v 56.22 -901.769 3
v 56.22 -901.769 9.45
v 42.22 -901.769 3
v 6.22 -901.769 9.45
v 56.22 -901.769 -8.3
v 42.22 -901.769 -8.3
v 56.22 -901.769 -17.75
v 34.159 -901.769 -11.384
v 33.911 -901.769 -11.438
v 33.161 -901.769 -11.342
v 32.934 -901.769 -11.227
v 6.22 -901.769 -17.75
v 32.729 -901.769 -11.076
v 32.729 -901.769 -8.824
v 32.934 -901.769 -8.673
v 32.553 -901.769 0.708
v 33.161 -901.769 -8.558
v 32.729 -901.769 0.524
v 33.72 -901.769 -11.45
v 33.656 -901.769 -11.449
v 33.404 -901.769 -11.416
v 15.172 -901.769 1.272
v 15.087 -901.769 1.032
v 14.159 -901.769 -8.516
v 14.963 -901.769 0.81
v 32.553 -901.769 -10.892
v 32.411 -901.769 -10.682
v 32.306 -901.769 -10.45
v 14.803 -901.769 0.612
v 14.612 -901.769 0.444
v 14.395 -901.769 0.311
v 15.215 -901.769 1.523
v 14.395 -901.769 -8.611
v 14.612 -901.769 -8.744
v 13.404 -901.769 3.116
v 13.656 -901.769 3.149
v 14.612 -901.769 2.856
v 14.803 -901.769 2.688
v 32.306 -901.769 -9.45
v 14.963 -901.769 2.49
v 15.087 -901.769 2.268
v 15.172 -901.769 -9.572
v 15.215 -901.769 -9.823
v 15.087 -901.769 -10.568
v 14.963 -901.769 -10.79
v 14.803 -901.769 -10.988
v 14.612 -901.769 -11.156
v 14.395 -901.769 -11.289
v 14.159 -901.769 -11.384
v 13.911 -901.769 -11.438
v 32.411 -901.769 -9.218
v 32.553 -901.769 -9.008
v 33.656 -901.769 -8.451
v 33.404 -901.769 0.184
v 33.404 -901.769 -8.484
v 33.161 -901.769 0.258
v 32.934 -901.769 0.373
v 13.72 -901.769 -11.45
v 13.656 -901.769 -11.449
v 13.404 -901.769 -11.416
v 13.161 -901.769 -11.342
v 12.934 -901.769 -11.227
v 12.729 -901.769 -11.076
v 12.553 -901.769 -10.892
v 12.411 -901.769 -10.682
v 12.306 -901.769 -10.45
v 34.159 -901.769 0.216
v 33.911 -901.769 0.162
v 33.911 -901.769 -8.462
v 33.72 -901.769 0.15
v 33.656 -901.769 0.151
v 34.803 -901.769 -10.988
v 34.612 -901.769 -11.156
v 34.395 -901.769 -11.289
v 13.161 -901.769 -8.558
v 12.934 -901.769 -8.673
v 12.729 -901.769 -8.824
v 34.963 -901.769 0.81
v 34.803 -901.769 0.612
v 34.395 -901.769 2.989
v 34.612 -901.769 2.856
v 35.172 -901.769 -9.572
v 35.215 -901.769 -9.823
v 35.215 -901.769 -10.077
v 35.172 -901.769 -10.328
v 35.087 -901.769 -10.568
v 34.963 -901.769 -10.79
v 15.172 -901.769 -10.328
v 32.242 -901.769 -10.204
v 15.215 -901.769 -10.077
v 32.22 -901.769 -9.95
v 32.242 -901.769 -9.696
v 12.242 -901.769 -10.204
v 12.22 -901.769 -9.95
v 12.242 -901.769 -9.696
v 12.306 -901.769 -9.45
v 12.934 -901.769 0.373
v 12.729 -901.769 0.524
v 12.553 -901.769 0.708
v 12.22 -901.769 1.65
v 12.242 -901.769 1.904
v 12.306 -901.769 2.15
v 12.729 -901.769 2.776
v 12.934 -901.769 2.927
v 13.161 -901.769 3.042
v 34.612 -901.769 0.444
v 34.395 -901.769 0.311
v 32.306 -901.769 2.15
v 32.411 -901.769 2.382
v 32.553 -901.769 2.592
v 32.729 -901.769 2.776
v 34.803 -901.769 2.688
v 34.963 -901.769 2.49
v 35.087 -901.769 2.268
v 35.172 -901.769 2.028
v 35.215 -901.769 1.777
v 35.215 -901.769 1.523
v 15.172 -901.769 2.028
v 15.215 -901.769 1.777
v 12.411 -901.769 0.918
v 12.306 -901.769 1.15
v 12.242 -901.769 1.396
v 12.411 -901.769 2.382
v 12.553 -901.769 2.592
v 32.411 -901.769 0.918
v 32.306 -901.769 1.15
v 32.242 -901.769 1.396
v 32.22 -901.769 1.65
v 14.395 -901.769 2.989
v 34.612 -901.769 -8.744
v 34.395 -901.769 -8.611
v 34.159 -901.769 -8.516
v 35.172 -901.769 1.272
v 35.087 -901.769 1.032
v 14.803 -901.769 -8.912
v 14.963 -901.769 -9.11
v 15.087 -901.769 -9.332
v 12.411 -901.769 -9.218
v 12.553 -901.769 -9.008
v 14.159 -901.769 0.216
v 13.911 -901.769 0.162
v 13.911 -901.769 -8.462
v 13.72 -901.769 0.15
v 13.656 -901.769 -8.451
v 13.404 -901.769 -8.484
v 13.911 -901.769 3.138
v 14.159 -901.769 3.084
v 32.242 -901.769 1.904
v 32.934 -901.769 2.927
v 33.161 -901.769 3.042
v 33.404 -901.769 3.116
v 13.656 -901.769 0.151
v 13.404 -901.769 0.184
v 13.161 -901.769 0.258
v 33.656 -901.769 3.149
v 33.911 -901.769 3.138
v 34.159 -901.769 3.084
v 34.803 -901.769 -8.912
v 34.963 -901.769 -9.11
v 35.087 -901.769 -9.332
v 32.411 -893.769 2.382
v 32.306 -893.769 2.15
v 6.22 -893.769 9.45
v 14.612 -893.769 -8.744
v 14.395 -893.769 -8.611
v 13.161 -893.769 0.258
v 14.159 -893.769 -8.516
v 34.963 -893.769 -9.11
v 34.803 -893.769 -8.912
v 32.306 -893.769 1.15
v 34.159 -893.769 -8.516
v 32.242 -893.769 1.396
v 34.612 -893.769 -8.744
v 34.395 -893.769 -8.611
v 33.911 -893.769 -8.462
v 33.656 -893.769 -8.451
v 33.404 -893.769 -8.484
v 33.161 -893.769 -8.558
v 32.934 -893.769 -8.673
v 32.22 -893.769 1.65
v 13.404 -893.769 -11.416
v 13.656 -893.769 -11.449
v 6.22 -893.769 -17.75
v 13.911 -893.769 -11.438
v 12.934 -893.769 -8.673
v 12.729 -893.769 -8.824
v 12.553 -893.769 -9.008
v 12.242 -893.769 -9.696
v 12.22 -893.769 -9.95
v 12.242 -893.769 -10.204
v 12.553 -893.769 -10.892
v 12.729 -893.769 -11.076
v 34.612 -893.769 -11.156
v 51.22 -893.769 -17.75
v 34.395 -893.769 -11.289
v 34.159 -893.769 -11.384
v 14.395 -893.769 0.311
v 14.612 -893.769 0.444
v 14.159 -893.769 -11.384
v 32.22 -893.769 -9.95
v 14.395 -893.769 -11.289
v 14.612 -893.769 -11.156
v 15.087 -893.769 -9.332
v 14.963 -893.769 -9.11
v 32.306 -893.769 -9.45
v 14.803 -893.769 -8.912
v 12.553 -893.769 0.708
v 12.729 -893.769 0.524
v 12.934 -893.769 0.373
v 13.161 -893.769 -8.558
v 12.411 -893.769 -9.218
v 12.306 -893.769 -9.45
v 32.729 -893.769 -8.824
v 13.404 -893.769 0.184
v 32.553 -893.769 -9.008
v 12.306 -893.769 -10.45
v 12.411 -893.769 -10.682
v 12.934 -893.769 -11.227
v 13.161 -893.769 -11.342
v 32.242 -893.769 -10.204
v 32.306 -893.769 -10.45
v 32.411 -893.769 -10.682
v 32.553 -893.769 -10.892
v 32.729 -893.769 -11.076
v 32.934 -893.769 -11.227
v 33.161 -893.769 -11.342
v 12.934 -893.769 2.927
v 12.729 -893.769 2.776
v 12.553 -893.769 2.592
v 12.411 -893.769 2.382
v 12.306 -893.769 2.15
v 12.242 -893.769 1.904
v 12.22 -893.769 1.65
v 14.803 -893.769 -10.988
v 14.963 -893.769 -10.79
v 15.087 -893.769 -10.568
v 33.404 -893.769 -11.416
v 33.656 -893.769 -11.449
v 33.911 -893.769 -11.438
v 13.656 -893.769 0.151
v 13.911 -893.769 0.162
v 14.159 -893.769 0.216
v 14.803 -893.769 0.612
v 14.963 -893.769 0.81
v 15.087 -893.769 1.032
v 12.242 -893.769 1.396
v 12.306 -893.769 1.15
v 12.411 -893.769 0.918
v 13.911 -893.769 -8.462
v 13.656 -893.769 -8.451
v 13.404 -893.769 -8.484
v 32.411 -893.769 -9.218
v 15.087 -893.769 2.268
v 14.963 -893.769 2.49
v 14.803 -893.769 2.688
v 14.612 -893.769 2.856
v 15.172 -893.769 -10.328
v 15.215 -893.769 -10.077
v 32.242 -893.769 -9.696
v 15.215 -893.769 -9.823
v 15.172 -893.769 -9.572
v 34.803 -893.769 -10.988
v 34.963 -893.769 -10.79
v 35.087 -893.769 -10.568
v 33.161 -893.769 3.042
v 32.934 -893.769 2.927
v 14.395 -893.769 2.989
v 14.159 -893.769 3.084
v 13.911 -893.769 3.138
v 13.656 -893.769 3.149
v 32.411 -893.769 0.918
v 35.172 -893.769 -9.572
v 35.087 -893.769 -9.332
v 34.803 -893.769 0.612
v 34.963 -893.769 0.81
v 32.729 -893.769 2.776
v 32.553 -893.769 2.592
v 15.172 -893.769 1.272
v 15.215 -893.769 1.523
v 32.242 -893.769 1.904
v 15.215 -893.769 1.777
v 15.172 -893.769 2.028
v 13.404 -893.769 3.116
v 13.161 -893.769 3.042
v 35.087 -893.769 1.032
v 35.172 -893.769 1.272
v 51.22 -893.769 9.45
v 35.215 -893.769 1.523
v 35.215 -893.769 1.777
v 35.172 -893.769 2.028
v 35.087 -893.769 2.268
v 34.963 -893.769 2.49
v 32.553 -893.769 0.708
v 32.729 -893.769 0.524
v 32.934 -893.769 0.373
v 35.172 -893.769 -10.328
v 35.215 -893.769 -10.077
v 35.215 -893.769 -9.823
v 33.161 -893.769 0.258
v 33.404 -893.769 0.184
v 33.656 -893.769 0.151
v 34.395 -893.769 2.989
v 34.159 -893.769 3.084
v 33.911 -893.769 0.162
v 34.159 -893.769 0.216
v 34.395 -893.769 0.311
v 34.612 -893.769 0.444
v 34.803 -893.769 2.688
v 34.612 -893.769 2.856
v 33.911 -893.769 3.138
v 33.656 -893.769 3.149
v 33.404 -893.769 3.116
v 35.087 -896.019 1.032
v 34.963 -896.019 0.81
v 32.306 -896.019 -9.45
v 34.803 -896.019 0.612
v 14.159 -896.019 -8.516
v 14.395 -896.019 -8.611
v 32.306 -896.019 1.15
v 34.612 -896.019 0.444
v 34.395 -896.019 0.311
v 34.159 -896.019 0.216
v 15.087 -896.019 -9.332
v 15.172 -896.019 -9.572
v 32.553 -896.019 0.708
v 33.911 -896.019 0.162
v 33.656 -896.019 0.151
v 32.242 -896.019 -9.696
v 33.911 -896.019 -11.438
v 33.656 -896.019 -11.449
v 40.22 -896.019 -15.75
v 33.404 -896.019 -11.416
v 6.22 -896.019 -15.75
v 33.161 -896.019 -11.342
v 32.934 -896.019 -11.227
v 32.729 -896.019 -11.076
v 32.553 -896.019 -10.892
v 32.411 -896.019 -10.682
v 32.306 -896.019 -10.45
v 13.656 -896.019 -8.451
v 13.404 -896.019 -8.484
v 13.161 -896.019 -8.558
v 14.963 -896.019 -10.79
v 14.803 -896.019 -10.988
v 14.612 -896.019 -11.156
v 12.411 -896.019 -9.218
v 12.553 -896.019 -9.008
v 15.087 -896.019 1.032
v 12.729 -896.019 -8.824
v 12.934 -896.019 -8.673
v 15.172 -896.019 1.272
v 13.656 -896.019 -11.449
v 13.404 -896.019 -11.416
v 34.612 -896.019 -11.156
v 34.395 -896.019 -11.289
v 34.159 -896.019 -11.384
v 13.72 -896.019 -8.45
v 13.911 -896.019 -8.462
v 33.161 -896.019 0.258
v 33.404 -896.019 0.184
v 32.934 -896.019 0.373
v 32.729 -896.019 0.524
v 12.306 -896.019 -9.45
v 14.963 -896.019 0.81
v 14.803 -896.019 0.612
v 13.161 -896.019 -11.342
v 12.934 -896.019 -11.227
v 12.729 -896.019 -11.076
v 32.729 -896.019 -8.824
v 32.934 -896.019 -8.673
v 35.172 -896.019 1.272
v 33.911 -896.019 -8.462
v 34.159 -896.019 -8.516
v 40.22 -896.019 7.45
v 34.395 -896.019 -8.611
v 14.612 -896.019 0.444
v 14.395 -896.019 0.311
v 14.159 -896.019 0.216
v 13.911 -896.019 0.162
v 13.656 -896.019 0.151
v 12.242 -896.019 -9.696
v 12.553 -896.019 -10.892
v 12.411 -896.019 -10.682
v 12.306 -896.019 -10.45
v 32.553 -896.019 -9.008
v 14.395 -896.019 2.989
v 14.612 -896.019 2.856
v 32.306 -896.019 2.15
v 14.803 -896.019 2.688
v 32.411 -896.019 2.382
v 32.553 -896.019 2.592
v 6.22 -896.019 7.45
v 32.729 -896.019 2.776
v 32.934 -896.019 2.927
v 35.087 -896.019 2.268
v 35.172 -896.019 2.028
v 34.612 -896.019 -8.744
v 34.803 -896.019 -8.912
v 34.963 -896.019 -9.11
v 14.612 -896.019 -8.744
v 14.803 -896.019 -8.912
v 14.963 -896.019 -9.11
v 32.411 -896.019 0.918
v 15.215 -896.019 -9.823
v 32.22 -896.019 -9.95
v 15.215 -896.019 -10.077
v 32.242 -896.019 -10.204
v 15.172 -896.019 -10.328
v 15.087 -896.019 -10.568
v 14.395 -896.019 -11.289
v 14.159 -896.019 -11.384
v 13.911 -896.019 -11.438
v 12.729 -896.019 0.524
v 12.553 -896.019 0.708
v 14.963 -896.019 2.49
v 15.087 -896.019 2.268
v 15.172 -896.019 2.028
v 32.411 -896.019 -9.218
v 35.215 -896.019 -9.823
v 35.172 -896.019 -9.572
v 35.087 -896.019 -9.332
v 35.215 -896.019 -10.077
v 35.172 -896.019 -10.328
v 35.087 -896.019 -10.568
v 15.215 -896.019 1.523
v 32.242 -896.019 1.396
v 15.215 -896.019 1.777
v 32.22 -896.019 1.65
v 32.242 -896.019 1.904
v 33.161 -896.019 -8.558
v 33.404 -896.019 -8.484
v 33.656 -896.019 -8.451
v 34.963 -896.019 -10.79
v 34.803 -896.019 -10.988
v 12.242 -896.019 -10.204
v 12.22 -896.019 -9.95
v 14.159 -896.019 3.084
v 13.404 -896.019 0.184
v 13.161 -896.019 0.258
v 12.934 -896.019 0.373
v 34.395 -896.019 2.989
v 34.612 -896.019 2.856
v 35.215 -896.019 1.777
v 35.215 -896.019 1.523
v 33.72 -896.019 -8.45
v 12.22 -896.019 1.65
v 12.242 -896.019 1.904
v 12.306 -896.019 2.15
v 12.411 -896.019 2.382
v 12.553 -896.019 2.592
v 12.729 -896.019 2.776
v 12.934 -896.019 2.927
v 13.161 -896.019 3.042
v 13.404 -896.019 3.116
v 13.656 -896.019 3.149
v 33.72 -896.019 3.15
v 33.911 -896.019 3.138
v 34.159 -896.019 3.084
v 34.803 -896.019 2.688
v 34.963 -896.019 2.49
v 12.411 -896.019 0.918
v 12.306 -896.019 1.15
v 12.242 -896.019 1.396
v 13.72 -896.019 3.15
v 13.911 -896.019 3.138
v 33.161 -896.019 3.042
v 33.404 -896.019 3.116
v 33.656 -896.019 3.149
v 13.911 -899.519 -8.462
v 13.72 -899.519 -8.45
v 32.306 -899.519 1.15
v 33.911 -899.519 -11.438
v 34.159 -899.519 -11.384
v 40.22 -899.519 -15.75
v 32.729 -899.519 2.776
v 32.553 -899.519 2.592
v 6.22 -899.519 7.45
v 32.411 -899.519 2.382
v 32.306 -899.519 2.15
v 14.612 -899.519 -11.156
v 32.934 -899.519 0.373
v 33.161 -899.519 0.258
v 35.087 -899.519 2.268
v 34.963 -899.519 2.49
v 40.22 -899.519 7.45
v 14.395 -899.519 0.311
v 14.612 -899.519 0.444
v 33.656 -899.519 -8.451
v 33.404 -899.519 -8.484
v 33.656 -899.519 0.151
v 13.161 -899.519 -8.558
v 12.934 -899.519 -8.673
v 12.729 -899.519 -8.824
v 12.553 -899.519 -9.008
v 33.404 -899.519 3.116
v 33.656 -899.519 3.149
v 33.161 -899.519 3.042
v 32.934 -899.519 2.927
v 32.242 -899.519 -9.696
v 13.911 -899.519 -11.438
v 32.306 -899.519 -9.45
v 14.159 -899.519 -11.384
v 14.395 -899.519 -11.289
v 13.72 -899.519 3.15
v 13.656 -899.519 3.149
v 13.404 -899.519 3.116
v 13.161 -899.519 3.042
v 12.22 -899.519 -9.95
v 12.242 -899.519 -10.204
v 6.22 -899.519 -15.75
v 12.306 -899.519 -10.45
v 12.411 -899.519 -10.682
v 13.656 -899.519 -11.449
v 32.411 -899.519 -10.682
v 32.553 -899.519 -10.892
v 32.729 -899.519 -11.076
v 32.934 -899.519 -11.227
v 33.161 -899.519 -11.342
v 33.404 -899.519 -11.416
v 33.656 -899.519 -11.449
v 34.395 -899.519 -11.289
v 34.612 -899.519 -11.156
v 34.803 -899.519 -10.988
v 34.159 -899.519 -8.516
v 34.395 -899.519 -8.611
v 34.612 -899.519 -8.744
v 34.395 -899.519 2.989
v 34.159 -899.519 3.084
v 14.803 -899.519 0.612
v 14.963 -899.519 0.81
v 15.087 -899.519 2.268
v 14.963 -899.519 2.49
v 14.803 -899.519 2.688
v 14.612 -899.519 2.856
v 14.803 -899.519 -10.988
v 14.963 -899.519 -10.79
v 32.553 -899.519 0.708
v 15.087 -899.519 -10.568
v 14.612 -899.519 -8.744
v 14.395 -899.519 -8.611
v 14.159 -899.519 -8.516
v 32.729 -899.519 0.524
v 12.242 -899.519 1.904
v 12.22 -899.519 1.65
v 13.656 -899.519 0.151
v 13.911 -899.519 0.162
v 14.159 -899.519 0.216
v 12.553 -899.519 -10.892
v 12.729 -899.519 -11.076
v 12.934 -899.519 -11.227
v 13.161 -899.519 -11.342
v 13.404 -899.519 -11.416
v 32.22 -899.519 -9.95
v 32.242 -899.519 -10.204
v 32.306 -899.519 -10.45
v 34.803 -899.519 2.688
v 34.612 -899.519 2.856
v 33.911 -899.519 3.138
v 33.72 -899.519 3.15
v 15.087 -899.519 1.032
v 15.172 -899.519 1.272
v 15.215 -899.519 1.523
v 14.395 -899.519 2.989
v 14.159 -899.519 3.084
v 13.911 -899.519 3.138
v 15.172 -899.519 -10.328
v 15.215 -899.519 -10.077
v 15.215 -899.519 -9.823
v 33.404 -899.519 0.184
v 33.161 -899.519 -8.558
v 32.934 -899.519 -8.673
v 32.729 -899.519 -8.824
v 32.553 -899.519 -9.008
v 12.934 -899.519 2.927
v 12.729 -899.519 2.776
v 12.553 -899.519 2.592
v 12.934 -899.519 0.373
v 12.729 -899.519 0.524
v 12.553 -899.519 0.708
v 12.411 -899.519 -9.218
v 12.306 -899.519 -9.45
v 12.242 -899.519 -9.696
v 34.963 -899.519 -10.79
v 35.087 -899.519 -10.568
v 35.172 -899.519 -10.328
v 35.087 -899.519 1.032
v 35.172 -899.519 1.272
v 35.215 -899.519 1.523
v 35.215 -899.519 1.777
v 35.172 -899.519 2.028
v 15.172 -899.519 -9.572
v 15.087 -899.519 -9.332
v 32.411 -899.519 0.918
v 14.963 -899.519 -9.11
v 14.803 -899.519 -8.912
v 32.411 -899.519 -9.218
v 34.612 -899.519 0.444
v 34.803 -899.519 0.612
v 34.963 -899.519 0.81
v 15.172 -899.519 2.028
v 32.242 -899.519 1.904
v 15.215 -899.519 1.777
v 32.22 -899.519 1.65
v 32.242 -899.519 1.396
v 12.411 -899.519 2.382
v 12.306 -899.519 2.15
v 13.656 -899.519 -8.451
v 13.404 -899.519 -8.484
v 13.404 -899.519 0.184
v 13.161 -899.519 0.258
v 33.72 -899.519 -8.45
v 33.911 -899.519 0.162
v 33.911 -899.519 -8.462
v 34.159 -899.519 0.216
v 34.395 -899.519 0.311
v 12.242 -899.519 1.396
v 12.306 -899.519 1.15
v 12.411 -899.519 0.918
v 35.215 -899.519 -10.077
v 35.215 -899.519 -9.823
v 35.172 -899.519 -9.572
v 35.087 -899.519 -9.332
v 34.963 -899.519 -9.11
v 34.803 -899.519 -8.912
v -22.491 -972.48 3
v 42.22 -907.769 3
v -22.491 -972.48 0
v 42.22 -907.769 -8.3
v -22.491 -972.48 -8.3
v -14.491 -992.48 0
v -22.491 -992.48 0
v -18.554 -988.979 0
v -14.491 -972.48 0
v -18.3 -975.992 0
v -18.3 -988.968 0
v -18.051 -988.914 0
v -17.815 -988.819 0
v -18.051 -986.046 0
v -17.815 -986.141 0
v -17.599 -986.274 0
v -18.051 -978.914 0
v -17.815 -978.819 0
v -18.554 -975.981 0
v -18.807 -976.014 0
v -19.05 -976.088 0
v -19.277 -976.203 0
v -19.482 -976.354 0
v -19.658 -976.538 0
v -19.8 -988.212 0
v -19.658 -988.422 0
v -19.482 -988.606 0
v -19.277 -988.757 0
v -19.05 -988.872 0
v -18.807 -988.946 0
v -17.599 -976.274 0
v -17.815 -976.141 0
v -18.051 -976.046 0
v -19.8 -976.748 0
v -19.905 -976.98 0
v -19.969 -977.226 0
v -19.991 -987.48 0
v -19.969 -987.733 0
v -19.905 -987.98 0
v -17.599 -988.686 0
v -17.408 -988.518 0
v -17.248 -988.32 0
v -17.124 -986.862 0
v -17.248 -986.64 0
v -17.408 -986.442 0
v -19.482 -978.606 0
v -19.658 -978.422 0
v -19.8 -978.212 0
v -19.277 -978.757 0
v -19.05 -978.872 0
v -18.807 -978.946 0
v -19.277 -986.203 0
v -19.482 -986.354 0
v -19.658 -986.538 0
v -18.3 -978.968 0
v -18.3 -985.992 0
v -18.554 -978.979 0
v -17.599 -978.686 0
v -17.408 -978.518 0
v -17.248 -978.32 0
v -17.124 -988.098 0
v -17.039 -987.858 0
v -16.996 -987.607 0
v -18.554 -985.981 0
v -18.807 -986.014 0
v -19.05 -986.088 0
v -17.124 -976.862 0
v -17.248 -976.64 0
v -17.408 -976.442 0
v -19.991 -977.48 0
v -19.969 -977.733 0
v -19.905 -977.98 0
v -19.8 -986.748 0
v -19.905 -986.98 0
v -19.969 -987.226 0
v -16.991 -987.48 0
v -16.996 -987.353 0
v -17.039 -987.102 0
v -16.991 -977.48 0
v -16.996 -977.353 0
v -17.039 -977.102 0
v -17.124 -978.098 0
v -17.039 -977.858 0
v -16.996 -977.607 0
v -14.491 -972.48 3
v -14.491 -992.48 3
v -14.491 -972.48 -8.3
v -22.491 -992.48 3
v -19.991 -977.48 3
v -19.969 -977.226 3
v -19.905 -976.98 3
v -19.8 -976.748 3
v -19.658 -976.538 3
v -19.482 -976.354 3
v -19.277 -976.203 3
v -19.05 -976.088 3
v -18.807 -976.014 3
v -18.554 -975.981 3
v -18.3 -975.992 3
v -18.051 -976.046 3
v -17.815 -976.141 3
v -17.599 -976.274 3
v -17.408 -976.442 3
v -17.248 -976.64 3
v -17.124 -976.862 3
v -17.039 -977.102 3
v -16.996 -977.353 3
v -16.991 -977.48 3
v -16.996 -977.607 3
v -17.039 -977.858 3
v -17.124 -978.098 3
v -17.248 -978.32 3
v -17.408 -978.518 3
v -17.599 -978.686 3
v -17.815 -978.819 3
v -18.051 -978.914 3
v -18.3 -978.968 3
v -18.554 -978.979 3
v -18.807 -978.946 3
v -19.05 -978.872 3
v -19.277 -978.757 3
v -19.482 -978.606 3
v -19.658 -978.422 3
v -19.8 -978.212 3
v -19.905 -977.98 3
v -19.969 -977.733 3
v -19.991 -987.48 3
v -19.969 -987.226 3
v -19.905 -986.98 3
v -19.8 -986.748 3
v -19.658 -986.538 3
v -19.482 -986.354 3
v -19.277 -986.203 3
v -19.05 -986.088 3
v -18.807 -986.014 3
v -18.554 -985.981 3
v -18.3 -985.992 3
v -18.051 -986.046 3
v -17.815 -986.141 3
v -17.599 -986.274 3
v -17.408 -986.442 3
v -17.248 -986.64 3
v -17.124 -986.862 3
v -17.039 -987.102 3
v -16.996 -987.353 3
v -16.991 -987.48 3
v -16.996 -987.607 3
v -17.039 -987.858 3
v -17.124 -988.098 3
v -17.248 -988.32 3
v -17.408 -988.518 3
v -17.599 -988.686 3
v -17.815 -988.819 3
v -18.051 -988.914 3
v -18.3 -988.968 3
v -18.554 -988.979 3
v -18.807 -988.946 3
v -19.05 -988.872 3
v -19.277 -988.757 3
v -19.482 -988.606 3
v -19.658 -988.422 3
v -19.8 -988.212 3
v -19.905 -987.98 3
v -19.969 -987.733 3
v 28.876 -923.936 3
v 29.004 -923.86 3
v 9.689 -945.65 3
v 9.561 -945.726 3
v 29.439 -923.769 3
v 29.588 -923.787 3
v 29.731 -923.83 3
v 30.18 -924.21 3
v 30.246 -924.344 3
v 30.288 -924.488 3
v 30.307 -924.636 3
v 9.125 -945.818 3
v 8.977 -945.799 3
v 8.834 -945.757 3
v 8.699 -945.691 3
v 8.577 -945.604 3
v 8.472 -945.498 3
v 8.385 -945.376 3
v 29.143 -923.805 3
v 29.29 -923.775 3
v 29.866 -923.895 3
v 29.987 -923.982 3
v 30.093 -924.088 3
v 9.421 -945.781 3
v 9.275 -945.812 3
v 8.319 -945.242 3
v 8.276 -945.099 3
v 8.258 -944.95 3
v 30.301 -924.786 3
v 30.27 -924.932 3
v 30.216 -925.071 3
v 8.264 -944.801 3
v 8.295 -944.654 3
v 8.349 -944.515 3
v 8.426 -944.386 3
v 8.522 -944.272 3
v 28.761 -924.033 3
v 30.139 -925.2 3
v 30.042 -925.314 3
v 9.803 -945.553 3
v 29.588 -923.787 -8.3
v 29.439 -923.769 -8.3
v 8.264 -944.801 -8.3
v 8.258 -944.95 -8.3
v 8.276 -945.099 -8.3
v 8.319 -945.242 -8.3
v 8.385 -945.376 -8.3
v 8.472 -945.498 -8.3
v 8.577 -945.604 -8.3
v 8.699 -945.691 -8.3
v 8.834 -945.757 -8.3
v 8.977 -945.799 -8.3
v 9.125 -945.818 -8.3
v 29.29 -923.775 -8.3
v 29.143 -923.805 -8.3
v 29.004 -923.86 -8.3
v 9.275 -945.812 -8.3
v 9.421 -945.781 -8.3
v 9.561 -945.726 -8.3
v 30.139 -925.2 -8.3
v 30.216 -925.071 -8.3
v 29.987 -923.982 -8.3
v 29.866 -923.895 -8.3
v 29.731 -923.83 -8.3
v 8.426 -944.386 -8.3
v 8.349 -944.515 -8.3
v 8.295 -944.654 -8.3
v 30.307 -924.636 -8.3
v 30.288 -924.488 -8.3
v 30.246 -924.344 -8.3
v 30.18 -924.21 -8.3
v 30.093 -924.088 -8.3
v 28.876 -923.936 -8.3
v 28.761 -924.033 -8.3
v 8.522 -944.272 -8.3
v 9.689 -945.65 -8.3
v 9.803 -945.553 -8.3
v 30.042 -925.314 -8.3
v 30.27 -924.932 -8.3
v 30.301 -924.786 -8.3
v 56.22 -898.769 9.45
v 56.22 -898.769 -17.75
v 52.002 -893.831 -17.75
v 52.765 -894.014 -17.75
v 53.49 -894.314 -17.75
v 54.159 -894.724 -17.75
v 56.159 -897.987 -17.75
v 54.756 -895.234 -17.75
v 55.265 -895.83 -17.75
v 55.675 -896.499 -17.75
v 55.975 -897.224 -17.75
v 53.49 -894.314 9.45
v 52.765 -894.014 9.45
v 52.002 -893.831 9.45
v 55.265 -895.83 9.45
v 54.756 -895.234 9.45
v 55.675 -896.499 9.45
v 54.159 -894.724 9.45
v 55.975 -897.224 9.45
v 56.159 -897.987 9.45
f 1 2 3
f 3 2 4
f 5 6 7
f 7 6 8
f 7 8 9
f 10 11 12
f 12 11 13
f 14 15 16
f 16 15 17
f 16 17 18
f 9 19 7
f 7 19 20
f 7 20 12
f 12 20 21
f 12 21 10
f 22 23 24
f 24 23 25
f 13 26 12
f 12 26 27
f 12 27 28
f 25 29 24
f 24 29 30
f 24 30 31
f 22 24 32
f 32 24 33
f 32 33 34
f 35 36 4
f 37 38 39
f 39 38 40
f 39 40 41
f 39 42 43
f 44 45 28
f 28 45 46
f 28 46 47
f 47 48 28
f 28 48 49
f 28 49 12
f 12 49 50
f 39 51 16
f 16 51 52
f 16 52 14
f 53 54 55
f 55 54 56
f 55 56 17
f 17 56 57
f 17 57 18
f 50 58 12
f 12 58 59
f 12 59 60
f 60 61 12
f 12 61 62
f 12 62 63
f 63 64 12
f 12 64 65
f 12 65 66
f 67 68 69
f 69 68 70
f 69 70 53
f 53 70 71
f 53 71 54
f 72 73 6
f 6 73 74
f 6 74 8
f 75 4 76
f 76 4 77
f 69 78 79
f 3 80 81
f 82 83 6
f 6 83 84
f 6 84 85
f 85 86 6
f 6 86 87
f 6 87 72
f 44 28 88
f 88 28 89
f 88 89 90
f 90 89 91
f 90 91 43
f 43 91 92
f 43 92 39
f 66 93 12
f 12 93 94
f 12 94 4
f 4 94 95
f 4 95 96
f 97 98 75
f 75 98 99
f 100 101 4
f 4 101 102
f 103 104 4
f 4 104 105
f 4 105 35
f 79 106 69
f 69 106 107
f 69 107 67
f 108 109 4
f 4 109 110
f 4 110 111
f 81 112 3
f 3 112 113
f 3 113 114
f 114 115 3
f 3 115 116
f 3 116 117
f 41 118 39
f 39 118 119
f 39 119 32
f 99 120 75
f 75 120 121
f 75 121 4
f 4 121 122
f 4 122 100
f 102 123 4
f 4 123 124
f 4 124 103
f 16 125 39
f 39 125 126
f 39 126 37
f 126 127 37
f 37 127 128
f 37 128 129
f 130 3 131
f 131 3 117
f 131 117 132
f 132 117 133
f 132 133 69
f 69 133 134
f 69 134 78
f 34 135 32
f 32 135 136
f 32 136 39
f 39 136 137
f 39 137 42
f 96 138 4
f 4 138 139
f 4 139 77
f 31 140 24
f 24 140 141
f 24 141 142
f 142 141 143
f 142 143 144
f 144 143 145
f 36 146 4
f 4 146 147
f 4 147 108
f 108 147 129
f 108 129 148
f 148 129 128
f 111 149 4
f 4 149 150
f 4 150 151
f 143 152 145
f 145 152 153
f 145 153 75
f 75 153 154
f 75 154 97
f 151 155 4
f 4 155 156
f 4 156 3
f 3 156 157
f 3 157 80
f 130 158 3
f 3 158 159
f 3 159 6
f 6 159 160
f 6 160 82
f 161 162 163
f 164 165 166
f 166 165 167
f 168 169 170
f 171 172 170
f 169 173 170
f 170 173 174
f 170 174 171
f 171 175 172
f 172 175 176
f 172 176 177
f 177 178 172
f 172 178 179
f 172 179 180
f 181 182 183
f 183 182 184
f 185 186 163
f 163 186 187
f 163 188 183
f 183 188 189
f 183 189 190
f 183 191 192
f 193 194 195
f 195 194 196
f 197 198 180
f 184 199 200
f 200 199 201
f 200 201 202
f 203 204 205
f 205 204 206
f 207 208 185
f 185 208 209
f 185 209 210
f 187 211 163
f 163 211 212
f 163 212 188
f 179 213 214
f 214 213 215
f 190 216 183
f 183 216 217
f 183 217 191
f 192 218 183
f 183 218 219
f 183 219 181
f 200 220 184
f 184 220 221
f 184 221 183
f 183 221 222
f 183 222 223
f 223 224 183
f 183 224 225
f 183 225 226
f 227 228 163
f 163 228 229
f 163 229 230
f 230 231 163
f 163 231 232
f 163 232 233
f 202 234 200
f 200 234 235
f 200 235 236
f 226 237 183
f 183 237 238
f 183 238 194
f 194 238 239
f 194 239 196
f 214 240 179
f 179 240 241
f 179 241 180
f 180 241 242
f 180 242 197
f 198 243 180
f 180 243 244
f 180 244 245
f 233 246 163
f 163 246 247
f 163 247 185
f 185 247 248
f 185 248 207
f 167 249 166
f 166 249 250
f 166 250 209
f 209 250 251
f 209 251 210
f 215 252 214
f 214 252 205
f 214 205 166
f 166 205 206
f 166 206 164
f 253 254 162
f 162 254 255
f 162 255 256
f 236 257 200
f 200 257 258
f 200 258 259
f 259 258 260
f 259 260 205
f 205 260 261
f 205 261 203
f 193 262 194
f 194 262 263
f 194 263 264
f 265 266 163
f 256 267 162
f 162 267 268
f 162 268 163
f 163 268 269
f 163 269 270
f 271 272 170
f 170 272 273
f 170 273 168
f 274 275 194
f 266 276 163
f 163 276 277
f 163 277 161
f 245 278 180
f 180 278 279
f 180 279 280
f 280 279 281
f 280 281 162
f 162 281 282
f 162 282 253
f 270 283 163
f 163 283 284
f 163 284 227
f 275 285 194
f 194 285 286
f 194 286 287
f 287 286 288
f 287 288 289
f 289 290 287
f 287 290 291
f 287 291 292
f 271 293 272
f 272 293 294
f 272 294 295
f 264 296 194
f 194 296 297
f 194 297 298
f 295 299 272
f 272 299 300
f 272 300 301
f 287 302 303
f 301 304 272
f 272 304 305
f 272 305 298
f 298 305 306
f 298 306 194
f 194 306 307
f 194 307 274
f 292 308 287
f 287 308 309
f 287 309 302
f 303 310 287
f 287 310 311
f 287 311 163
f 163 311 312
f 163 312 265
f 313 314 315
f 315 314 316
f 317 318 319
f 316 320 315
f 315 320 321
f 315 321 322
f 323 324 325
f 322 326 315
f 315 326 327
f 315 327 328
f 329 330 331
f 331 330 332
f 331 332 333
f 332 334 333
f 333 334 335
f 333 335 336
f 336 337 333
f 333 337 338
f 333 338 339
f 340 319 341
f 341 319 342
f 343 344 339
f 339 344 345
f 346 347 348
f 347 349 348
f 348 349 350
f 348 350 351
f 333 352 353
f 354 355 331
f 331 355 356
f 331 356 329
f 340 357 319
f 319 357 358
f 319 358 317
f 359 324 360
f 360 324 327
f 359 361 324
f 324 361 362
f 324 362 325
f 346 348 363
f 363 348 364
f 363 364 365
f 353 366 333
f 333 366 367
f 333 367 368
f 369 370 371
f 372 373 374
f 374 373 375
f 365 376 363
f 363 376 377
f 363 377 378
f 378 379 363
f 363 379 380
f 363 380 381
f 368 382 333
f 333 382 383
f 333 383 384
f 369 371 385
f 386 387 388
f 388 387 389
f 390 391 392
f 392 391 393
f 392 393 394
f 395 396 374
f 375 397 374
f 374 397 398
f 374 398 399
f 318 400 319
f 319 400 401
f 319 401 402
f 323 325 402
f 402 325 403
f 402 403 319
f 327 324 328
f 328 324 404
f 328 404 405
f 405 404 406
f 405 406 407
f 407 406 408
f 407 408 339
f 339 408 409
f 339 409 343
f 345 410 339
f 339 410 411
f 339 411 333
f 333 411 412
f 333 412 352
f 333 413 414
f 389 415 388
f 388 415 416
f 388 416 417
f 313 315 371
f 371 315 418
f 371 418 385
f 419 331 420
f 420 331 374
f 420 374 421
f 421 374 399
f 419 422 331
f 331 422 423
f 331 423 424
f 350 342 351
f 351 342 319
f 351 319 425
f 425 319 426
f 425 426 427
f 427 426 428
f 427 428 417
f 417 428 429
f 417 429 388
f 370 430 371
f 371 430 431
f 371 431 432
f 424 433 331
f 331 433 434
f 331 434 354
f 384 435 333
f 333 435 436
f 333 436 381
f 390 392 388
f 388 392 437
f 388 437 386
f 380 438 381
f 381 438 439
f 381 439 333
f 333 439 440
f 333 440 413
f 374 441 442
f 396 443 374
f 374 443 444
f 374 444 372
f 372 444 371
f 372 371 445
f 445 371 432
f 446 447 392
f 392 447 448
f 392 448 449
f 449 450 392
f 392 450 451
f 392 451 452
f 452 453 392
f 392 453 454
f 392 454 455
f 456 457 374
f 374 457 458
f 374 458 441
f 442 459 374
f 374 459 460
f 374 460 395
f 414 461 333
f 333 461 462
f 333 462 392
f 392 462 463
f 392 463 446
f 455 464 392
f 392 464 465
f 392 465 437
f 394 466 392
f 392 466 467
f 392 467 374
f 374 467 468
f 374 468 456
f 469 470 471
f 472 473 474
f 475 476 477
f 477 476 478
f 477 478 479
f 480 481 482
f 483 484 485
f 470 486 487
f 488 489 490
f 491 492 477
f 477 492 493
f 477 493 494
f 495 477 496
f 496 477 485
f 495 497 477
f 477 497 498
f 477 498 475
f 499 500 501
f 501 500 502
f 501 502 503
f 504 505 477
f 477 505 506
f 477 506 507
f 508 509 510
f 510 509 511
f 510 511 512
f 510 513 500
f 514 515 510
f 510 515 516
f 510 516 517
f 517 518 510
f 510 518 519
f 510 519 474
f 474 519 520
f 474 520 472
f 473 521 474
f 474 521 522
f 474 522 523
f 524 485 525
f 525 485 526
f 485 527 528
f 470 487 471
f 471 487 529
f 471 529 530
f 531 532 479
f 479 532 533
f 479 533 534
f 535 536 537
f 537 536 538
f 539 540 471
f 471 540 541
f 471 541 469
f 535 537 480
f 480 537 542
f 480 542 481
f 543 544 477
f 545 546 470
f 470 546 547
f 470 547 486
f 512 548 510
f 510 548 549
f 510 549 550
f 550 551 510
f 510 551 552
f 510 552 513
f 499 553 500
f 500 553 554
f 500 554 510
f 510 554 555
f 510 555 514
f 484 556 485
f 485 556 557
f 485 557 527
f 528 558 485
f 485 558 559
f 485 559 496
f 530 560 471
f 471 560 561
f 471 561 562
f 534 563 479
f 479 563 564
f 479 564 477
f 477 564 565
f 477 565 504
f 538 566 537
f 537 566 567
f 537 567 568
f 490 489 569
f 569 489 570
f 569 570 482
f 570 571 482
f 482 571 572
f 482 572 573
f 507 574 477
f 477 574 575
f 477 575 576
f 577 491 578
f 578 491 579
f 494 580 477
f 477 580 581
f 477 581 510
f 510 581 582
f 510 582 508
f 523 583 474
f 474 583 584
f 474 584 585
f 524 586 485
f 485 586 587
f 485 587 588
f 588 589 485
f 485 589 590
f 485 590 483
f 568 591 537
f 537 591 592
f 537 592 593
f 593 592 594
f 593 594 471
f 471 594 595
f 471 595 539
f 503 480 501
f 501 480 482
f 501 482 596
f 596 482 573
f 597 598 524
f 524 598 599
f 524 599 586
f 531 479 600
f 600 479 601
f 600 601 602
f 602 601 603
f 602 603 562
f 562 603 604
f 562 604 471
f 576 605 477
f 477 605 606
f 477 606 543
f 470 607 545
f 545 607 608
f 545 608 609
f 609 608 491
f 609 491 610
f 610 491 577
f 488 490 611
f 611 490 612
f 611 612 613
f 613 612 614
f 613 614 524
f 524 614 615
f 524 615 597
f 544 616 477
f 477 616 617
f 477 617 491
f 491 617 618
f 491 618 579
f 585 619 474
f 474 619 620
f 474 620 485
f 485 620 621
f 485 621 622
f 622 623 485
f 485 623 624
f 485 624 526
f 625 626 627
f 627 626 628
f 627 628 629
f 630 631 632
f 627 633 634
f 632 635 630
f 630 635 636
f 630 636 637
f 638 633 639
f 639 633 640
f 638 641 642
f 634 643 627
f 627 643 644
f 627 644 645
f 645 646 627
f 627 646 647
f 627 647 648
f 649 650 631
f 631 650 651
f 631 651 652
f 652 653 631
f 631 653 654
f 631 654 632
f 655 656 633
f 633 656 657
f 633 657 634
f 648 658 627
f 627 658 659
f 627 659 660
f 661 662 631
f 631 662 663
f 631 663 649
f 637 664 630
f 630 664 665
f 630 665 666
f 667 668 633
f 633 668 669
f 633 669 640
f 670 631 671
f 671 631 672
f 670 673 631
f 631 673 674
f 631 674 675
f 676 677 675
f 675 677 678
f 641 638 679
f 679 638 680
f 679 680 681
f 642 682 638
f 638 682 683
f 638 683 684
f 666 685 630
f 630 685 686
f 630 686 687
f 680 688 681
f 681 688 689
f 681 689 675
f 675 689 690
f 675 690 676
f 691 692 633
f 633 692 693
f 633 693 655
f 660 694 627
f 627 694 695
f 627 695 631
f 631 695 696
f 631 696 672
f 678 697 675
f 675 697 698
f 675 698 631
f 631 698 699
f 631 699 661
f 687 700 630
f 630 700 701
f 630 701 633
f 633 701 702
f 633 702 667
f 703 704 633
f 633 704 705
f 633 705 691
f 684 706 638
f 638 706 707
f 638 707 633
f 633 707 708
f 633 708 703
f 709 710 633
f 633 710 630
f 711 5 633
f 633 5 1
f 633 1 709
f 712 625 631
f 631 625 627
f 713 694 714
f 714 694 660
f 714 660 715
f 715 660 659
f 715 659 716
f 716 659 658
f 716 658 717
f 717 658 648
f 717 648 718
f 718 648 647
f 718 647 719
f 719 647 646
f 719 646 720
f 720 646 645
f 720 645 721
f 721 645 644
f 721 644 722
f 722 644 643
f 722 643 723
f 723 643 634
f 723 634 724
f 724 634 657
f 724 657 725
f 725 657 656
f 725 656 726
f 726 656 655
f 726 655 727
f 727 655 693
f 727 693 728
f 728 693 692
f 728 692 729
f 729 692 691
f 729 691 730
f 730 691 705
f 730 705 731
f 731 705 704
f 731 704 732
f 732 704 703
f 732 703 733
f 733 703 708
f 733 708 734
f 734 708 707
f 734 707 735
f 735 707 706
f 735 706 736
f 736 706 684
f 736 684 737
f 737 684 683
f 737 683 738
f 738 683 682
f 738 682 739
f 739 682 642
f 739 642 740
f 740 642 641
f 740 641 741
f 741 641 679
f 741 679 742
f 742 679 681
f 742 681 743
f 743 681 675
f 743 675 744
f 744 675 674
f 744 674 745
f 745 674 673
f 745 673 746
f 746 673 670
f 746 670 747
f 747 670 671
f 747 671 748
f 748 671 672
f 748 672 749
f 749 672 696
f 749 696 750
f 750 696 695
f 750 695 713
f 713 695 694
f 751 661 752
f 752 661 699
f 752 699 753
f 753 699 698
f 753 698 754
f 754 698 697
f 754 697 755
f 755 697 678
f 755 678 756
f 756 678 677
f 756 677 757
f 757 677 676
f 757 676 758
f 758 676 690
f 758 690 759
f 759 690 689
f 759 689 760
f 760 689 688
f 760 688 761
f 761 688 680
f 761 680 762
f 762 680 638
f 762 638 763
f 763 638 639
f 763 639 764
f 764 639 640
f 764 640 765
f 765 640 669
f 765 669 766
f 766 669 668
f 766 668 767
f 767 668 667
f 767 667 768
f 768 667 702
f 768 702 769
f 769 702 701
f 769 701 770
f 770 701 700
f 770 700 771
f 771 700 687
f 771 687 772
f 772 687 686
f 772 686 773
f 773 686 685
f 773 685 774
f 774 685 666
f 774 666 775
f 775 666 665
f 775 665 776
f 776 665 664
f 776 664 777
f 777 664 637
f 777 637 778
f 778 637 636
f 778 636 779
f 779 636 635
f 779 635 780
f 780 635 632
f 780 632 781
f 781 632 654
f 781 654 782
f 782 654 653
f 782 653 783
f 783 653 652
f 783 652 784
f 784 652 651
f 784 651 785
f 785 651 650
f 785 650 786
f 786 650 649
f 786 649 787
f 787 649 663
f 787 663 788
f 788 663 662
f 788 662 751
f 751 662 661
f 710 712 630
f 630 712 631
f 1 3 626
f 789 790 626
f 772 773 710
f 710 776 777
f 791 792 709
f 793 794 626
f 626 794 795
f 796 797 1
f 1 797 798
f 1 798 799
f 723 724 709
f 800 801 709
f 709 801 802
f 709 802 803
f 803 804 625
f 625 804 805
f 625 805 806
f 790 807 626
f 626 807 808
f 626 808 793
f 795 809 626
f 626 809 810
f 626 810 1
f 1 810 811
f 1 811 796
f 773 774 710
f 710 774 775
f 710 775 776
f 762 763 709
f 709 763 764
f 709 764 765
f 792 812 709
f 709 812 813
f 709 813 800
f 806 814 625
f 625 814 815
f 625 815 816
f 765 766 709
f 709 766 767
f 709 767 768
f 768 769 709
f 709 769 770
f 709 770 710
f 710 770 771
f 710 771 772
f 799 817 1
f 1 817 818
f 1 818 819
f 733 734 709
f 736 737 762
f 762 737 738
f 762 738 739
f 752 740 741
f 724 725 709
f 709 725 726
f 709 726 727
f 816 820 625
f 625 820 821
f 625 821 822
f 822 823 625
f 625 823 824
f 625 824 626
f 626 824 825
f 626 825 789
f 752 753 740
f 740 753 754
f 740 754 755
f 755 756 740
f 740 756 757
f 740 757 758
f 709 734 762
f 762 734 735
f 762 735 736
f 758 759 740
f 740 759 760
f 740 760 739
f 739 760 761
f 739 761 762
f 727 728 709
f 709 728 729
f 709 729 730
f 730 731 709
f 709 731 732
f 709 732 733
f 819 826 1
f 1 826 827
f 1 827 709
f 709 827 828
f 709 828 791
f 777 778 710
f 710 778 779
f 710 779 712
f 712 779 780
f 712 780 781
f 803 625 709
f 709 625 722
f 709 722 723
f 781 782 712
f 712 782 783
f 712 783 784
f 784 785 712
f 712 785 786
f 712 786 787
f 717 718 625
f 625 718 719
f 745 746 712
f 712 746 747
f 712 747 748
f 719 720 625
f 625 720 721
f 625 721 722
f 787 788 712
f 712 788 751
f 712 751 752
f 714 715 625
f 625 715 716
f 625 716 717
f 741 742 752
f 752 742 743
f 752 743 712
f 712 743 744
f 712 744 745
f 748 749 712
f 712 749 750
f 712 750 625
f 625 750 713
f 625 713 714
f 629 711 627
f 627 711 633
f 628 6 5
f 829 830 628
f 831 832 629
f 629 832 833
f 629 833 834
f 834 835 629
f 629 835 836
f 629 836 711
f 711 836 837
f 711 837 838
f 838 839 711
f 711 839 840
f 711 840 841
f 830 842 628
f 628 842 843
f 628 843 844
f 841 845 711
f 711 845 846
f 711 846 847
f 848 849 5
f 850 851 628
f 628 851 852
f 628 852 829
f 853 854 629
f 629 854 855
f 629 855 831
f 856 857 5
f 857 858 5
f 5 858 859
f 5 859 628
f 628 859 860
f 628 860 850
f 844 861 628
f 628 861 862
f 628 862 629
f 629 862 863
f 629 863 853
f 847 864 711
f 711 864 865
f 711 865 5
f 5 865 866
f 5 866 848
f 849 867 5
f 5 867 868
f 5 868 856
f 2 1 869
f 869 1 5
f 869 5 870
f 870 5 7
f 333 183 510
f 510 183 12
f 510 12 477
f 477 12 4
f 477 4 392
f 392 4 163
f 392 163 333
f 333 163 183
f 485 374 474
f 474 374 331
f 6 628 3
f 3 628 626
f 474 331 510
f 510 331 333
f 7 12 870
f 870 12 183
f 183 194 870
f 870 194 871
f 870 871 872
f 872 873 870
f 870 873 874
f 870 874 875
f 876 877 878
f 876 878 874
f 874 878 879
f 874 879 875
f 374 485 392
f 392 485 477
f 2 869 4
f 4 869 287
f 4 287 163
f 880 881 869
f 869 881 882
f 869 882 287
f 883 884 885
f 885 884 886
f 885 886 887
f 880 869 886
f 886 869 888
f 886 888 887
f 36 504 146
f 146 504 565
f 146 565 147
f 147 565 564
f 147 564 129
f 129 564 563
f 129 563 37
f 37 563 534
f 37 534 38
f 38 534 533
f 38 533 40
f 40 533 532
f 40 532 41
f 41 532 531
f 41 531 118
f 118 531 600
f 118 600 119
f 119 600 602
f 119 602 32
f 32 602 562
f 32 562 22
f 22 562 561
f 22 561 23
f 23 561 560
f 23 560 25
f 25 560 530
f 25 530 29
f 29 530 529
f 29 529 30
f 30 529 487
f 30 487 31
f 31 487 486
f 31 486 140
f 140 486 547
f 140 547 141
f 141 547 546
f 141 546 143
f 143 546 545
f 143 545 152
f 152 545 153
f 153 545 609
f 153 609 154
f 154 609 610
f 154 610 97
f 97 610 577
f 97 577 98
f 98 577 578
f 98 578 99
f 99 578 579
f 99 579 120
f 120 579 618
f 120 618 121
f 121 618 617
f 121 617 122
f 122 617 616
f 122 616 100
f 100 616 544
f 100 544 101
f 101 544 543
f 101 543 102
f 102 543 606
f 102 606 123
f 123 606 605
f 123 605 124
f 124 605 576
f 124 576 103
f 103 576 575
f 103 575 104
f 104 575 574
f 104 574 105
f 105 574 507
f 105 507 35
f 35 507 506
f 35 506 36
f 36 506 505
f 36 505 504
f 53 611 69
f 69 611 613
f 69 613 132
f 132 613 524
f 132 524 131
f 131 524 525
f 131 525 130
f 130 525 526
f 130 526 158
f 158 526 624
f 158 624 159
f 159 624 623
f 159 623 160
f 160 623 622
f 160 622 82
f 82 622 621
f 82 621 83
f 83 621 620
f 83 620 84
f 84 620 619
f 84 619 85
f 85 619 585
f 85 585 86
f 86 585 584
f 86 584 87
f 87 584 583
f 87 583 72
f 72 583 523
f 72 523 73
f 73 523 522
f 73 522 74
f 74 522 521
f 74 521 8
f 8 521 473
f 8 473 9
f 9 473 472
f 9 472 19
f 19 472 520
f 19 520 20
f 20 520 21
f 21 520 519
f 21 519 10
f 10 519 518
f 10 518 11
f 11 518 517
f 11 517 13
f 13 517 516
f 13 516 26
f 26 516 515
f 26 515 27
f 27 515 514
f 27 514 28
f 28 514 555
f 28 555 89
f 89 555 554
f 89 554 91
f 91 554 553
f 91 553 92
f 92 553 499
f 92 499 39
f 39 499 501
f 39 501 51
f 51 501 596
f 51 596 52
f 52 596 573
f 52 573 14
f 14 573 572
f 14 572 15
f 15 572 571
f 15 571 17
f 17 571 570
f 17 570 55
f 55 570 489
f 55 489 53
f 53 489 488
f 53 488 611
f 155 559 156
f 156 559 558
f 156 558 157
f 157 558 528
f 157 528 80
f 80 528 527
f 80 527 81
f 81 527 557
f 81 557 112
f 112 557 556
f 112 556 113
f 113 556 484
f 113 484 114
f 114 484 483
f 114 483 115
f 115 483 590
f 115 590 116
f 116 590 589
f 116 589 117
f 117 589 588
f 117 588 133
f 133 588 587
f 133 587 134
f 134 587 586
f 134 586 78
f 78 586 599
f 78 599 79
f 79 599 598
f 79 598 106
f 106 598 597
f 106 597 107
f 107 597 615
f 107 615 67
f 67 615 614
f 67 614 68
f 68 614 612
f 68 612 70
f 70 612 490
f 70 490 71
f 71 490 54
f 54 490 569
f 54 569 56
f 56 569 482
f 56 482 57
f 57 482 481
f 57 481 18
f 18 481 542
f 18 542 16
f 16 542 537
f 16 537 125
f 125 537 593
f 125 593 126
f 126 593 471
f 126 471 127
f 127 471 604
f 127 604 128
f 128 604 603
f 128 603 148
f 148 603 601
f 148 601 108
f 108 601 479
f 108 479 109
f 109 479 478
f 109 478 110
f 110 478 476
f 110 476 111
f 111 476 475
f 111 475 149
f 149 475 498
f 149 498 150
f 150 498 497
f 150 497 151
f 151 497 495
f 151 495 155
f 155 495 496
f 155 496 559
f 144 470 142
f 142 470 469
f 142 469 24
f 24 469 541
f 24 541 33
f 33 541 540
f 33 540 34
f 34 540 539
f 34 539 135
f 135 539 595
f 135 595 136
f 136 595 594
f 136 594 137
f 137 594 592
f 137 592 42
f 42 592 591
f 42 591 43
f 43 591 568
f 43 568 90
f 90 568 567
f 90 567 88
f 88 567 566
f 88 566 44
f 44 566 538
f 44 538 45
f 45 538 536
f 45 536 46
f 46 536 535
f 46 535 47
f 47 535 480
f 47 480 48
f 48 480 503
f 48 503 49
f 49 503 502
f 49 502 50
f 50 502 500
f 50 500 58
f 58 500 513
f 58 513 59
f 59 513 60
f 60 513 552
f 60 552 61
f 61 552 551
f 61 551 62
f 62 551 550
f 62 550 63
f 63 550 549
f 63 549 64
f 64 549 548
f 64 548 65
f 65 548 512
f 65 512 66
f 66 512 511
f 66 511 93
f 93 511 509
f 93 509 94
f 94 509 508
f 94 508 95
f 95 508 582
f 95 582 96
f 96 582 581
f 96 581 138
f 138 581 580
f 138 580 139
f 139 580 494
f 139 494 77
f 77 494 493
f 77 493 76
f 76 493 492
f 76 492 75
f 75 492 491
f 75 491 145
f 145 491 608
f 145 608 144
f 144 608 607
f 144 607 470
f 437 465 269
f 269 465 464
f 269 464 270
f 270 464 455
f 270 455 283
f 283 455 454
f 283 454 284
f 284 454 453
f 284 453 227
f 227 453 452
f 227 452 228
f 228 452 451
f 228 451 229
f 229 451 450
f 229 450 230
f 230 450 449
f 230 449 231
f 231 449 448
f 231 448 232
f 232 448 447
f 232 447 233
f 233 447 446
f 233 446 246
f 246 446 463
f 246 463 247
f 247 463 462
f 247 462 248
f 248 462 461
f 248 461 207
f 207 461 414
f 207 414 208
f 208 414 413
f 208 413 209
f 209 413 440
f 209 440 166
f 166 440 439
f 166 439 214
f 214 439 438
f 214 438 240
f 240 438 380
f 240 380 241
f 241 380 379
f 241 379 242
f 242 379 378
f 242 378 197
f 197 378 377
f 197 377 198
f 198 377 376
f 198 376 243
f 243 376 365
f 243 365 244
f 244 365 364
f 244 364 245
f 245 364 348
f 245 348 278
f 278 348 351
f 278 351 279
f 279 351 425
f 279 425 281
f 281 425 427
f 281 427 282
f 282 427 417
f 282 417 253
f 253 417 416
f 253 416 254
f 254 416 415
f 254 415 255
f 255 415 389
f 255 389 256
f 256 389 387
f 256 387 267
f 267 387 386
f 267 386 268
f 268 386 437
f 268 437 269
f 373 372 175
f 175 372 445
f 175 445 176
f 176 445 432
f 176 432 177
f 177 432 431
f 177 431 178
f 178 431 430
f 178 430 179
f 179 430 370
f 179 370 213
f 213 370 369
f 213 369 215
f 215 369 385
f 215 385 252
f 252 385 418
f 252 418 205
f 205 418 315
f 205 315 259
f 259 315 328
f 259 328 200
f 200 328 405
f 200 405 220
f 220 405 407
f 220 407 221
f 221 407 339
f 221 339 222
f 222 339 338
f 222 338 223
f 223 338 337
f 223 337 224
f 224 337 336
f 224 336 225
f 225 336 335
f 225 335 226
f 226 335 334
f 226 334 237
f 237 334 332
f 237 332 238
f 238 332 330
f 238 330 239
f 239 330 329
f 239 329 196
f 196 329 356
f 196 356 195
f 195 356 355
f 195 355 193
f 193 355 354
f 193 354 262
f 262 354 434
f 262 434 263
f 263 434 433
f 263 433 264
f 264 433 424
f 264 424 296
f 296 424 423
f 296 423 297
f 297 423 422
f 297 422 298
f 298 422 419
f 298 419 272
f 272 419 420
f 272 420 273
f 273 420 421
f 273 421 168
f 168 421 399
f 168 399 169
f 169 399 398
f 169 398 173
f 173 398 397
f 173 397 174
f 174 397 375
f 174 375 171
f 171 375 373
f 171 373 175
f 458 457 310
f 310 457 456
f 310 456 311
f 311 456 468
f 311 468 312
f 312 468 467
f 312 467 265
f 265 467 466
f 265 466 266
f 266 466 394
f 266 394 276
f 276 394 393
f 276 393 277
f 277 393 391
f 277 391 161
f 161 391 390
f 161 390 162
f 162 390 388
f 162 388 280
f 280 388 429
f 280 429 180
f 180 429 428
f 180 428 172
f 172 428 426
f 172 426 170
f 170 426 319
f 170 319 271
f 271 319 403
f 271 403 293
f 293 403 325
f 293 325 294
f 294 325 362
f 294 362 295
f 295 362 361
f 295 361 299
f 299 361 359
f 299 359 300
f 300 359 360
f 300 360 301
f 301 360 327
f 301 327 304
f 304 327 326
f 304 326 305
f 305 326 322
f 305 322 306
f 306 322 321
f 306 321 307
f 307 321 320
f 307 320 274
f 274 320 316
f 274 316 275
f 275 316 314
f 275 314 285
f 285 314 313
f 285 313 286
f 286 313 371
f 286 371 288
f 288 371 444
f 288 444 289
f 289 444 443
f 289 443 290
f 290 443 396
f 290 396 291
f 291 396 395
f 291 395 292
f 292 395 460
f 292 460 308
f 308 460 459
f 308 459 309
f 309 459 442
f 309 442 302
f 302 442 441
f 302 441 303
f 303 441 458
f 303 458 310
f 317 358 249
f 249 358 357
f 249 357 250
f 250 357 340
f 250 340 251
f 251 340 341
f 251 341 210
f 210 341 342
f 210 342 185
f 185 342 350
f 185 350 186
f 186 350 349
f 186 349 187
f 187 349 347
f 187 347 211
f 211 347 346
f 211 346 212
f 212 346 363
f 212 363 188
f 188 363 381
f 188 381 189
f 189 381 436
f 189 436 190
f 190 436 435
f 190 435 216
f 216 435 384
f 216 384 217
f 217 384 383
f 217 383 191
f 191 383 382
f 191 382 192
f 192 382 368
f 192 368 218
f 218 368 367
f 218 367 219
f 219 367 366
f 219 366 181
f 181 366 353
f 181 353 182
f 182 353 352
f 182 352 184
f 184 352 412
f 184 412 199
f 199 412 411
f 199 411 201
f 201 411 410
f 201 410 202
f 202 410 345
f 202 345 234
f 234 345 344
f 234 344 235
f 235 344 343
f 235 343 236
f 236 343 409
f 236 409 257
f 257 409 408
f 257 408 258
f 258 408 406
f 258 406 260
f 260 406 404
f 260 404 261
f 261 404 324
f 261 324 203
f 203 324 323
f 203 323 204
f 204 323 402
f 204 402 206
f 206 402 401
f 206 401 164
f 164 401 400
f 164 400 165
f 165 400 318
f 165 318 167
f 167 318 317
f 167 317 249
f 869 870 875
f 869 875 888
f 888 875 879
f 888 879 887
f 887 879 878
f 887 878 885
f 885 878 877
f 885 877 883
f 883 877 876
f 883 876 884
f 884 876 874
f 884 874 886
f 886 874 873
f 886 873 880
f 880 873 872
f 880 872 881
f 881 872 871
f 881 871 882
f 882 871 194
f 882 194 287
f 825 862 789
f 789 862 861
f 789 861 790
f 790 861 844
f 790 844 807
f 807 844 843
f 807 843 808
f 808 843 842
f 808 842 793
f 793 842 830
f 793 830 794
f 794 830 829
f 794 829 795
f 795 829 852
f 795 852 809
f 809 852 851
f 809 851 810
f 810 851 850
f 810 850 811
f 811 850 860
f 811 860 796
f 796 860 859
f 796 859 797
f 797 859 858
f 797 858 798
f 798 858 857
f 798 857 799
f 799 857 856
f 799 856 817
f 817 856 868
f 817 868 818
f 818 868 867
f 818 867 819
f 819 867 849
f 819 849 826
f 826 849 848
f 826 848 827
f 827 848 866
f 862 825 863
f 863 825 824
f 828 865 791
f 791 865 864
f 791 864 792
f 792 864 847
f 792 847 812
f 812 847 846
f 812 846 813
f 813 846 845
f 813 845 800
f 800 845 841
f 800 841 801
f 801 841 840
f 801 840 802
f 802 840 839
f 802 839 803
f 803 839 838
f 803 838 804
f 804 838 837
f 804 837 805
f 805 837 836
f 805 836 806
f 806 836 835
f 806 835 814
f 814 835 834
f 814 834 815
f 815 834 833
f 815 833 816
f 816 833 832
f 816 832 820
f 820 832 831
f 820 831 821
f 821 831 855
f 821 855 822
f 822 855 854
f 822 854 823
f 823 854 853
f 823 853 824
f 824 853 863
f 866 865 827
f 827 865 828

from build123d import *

# Parameters (mm, degrees)
CROQUIS1_W                          = 8
CROQUIS1_H                          = 20
CROQUIS1_R                          = 1.5
SALIENTE_EXTRUIR1_DEPTH             = 3
SALIENTE_EXTRUIR2_DEPTH             = 8.3
CROQUIS2_W                          = 16
CROQUIS2_H                          = 3.5
SALIENTE_EXTRUIR3_DEPTH             = 11.6
SALIENTE_EXTRUIR5_REACH             = 150.418
SALIENTE_EXTRUIR5_DIRECTION_2_REACH = 150.418
SALIENTE_EXTRUIR6_START             = -8
CROQUIS3_W                          = 50
CROQUIS3_H                          = 2
SALIENTE_EXTRUIR6_DEPTH             = 8
CORTAR_EXTRUIR1_REACH               = 116.976
CROQUIS3_3_R                        = 1.5
REDONDEO1_R                         = 5
CORTAR_EXTRUIR2_DEPTH               = 995.229505316


with BuildPart() as part:
    # Croquis1 → Saliente-Extruir1 (new body)
    # profile 1 of 2: a face of its own
    with BuildSketch(Plane.XY):
        with Locations((-18.490607503, -982.48)):
            Rectangle(CROQUIS1_W, CROQUIS1_H)
        with Locations((-18.490607503, -987.48)):
            Circle(CROQUIS1_R, mode=Mode.SUBTRACT)
        with Locations((-18.490607503, -977.48)):
            Circle(CROQUIS1_R, mode=Mode.SUBTRACT)
    # profile 2 of 2: a face of its own
    with BuildSketch(Plane.XY):
        Polygon((42.220070616, -907.769321881), (-22.490607503, -972.48), (-14.490607503, -972.48), (56.220070616, -901.769321881), (48.220070616, -901.769321881), align=None)
    extrude(amount=SALIENTE_EXTRUIR1_DEPTH)

    # Croquis1<5> → Saliente-Extruir2 (add)
    with BuildSketch(Plane.XY):
        Polygon((42.220070616, -907.769321881), (-22.490607503, -972.48), (-14.490607503, -972.48), (56.220070616, -901.769321881), (48.220070616, -901.769321881), align=None)
    extrude(amount=-SALIENTE_EXTRUIR2_DEPTH)

    # Croquis2 → Saliente-Extruir3 (add, symmetric)
    with BuildSketch(Plane(origin=(-26.288644344, -1016.59343949, -4.15), x_dir=(1, 0, 0), z_dir=(0, 0, 1))):
        Polygon((68.50871496, 114.824117609), (74.50871496, 114.824117609), (82.50871496, 114.824117609), (82.50871496, 117.074117609), (66.50871496, 117.074117609), (32.50871496, 117.074117609), (32.50871496, 114.824117609), align=None)
        with Locations((74.50871496, 118.824117609)):
            Rectangle(CROQUIS2_W, CROQUIS2_H)
        Polygon((66.50871496, 120.574117609), (82.50871496, 120.574117609), (82.50871496, 122.824117609), (32.50871496, 122.824117609), (32.50871496, 120.574117609), align=None)
    extrude(amount=SALIENTE_EXTRUIR3_DEPTH, both=True)

    # Saliente-Extruir5: up to this face of the body (flat: up to its plane)
    saliente_extruir5_end = Plane(part.part.faces().sort_by_distance((9.617113618, -946.422214796, 3))[0])
    # Croquis2<4> → Saliente-Extruir5 (add, up to the picked face)
    with BuildSketch(Plane(origin=(-26.288644344, -1016.59343949, -4.15), x_dir=(1, 0, 0), z_dir=(0, 0, 1)), mode=Mode.PRIVATE) as saliente_extruir5_sk1:
        Polygon((68.50871496, 114.824117609), (68.50871496, 108.824117609), (74.50871496, 114.824117609), align=None)
    saliente_extruir5_tool1 = split(extrude(saliente_extruir5_sk1.sketch, amount=SALIENTE_EXTRUIR5_REACH, mode=Mode.PRIVATE), bisect_by=saliente_extruir5_end, keep=Keep.BOTH, mode=Mode.PRIVATE)
    add(saliente_extruir5_tool1.solids().sort_by(Axis((44.220071, -903.769322, -4.15), (0, 0, 1)))[0])

    # Saliente-Extruir5 direction 2: up to this face of the body (flat: up to its plane)
    saliente_extruir5_direction_2_end = Plane(part.part.faces().sort_by_distance((16.864731556, -937.124660941, -8.3))[0])
    # Croquis2<4> → Saliente-Extruir5 direction 2 (add, up to the picked face)
    with BuildSketch(Plane(origin=(-26.288644344, -1016.59343949, -4.15), x_dir=(1, 0, 0), z_dir=(0, 0, 1)), mode=Mode.PRIVATE) as saliente_extruir5_direction_2_sk1:
        Polygon((68.50871496, 114.824117609), (68.50871496, 108.824117609), (74.50871496, 114.824117609), align=None)
    saliente_extruir5_direction_2_tool1 = split(extrude(saliente_extruir5_direction_2_sk1.sketch, amount=-SALIENTE_EXTRUIR5_DIRECTION_2_REACH, mode=Mode.PRIVATE), bisect_by=saliente_extruir5_direction_2_end, keep=Keep.BOTH, mode=Mode.PRIVATE)
    add(saliente_extruir5_direction_2_tool1.solids().sort_by(Axis((44.220071, -903.769322, -4.15), (0, 0, -1)))[0])

    # Croquis3 → Saliente-Extruir6 (add)
    with BuildSketch(Plane(origin=(0, -893.769321881, 0), x_dir=(1, 0, 0), z_dir=(0, 1, 0)).offset(SALIENTE_EXTRUIR6_START)):
        with Locations((31.220070616, 16.75)):
            Rectangle(CROQUIS3_W, CROQUIS3_H)
        with Locations((31.220070616, -8.45)):
            Rectangle(CROQUIS3_W, CROQUIS3_H)
    extrude(amount=SALIENTE_EXTRUIR6_DEPTH)

    # Cortar-Extruir1: up to this face of the body (flat: up to its plane)
    cortar_extruir1_end = Plane(part.part.faces().sort_by_distance((28.850624784, -901.769321881, -4.347453819))[0])
    # Croquis3<3> → Cortar-Extruir1 (cut, up to the picked face)
    with BuildSketch(Plane(origin=(0, -893.769321881, 0), x_dir=(1, 0, 0), z_dir=(0, 1, 0)), mode=Mode.PRIVATE) as cortar_extruir1_sk1:
        with Locations(Location((13.720070616, -1.65, 0), (0, 0, 270))):
            Circle(CROQUIS3_3_R)
    cortar_extruir1_tool1 = split(extrude(cortar_extruir1_sk1.sketch, amount=-CORTAR_EXTRUIR1_REACH, mode=Mode.PRIVATE), bisect_by=cortar_extruir1_end, keep=Keep.BOTH, mode=Mode.PRIVATE)
    # Croquis3<3> → Cortar-Extruir1 (cut, up to the picked face)
    with BuildSketch(Plane(origin=(0, -893.769321881, 0), x_dir=(1, 0, 0), z_dir=(0, 1, 0)), mode=Mode.PRIVATE) as cortar_extruir1_sk2:
        with Locations(Location((33.720070616, 9.95, 0), (0, 0, 270))):
            Circle(CROQUIS3_3_R)
    cortar_extruir1_tool2 = split(extrude(cortar_extruir1_sk2.sketch, amount=-CORTAR_EXTRUIR1_REACH, mode=Mode.PRIVATE), bisect_by=cortar_extruir1_end, keep=Keep.BOTH, mode=Mode.PRIVATE)
    # Croquis3<3> → Cortar-Extruir1 (cut, up to the picked face)
    with BuildSketch(Plane(origin=(0, -893.769321881, 0), x_dir=(1, 0, 0), z_dir=(0, 1, 0)), mode=Mode.PRIVATE) as cortar_extruir1_sk3:
        with Locations(Location((33.720070616, -1.65, 0), (0, 0, 270))):
            Circle(CROQUIS3_3_R)
    cortar_extruir1_tool3 = split(extrude(cortar_extruir1_sk3.sketch, amount=-CORTAR_EXTRUIR1_REACH, mode=Mode.PRIVATE), bisect_by=cortar_extruir1_end, keep=Keep.BOTH, mode=Mode.PRIVATE)
    # Croquis3<3> → Cortar-Extruir1 (cut, up to the picked face)
    with BuildSketch(Plane(origin=(0, -893.769321881, 0), x_dir=(1, 0, 0), z_dir=(0, 1, 0)), mode=Mode.PRIVATE) as cortar_extruir1_sk4:
        with Locations(Location((13.720070616, 9.95, 0), (0, 0, 270))):
            Circle(CROQUIS3_3_R)
    cortar_extruir1_tool4 = split(extrude(cortar_extruir1_sk4.sketch, amount=-CORTAR_EXTRUIR1_REACH, mode=Mode.PRIVATE), bisect_by=cortar_extruir1_end, keep=Keep.BOTH, mode=Mode.PRIVATE)
    add(cortar_extruir1_tool1.solids().sort_by(Axis((13.720071, -893.769322, 1.65), (0, -1, 0)))[0], mode=Mode.SUBTRACT)
    add(cortar_extruir1_tool2.solids().sort_by(Axis((33.720071, -893.769322, -9.95), (0, -1, 0)))[0], mode=Mode.SUBTRACT)
    add(cortar_extruir1_tool3.solids().sort_by(Axis((33.720071, -893.769322, 1.65), (0, -1, 0)))[0], mode=Mode.SUBTRACT)
    add(cortar_extruir1_tool4.solids().sort_by(Axis((13.720071, -893.769322, -9.95), (0, -1, 0)))[0], mode=Mode.SUBTRACT)

    # Redondeo1
    redondeo1_edges = [part.edges().sort_by_distance(p)[0] for p in [
        (56.220070616, -893.769321881, -4.15),
    ]]
    fillet(redondeo1_edges, radius=REDONDEO1_R)

    # Croquis4 → Cortar-Extruir2 (cut, through all)
    with BuildSketch(Plane(origin=(0, 0, -8.3), x_dir=(-1, 0, 0), z_dir=(0, 0, -1))):
        with BuildLine():
            Line((-30.042390628, -924.033116126), (-8.522287998, -945.553218756))
            ThreePointArc((-8.522287998, -945.553218756), (-8.256992809, -944.912739511), (-8.522287998, -944.272260266))
            Line((-8.522287998, -944.272260266), (-28.761432138, -924.033116126))
            ThreePointArc((-28.761432138, -924.033116126), (-29.401911383, -923.767820936), (-30.042390628, -924.033116126))
        make_face()
        with BuildLine():
            ThreePointArc((-9.803246488, -945.553218756), (-9.162767243, -945.818513946), (-8.522287998, -945.553218756))
            Line((-8.522287998, -945.553218756), (-30.042390628, -924.033116126))
            ThreePointArc((-30.042390628, -924.033116126), (-30.307685818, -924.673595371), (-30.042390628, -925.314074616))
            Line((-30.042390628, -925.314074616), (-9.803246488, -945.553218756))
        make_face()
    extrude(amount=-CORTAR_EXTRUIR2_DEPTH, mode=Mode.SUBTRACT)


solid = part.part
